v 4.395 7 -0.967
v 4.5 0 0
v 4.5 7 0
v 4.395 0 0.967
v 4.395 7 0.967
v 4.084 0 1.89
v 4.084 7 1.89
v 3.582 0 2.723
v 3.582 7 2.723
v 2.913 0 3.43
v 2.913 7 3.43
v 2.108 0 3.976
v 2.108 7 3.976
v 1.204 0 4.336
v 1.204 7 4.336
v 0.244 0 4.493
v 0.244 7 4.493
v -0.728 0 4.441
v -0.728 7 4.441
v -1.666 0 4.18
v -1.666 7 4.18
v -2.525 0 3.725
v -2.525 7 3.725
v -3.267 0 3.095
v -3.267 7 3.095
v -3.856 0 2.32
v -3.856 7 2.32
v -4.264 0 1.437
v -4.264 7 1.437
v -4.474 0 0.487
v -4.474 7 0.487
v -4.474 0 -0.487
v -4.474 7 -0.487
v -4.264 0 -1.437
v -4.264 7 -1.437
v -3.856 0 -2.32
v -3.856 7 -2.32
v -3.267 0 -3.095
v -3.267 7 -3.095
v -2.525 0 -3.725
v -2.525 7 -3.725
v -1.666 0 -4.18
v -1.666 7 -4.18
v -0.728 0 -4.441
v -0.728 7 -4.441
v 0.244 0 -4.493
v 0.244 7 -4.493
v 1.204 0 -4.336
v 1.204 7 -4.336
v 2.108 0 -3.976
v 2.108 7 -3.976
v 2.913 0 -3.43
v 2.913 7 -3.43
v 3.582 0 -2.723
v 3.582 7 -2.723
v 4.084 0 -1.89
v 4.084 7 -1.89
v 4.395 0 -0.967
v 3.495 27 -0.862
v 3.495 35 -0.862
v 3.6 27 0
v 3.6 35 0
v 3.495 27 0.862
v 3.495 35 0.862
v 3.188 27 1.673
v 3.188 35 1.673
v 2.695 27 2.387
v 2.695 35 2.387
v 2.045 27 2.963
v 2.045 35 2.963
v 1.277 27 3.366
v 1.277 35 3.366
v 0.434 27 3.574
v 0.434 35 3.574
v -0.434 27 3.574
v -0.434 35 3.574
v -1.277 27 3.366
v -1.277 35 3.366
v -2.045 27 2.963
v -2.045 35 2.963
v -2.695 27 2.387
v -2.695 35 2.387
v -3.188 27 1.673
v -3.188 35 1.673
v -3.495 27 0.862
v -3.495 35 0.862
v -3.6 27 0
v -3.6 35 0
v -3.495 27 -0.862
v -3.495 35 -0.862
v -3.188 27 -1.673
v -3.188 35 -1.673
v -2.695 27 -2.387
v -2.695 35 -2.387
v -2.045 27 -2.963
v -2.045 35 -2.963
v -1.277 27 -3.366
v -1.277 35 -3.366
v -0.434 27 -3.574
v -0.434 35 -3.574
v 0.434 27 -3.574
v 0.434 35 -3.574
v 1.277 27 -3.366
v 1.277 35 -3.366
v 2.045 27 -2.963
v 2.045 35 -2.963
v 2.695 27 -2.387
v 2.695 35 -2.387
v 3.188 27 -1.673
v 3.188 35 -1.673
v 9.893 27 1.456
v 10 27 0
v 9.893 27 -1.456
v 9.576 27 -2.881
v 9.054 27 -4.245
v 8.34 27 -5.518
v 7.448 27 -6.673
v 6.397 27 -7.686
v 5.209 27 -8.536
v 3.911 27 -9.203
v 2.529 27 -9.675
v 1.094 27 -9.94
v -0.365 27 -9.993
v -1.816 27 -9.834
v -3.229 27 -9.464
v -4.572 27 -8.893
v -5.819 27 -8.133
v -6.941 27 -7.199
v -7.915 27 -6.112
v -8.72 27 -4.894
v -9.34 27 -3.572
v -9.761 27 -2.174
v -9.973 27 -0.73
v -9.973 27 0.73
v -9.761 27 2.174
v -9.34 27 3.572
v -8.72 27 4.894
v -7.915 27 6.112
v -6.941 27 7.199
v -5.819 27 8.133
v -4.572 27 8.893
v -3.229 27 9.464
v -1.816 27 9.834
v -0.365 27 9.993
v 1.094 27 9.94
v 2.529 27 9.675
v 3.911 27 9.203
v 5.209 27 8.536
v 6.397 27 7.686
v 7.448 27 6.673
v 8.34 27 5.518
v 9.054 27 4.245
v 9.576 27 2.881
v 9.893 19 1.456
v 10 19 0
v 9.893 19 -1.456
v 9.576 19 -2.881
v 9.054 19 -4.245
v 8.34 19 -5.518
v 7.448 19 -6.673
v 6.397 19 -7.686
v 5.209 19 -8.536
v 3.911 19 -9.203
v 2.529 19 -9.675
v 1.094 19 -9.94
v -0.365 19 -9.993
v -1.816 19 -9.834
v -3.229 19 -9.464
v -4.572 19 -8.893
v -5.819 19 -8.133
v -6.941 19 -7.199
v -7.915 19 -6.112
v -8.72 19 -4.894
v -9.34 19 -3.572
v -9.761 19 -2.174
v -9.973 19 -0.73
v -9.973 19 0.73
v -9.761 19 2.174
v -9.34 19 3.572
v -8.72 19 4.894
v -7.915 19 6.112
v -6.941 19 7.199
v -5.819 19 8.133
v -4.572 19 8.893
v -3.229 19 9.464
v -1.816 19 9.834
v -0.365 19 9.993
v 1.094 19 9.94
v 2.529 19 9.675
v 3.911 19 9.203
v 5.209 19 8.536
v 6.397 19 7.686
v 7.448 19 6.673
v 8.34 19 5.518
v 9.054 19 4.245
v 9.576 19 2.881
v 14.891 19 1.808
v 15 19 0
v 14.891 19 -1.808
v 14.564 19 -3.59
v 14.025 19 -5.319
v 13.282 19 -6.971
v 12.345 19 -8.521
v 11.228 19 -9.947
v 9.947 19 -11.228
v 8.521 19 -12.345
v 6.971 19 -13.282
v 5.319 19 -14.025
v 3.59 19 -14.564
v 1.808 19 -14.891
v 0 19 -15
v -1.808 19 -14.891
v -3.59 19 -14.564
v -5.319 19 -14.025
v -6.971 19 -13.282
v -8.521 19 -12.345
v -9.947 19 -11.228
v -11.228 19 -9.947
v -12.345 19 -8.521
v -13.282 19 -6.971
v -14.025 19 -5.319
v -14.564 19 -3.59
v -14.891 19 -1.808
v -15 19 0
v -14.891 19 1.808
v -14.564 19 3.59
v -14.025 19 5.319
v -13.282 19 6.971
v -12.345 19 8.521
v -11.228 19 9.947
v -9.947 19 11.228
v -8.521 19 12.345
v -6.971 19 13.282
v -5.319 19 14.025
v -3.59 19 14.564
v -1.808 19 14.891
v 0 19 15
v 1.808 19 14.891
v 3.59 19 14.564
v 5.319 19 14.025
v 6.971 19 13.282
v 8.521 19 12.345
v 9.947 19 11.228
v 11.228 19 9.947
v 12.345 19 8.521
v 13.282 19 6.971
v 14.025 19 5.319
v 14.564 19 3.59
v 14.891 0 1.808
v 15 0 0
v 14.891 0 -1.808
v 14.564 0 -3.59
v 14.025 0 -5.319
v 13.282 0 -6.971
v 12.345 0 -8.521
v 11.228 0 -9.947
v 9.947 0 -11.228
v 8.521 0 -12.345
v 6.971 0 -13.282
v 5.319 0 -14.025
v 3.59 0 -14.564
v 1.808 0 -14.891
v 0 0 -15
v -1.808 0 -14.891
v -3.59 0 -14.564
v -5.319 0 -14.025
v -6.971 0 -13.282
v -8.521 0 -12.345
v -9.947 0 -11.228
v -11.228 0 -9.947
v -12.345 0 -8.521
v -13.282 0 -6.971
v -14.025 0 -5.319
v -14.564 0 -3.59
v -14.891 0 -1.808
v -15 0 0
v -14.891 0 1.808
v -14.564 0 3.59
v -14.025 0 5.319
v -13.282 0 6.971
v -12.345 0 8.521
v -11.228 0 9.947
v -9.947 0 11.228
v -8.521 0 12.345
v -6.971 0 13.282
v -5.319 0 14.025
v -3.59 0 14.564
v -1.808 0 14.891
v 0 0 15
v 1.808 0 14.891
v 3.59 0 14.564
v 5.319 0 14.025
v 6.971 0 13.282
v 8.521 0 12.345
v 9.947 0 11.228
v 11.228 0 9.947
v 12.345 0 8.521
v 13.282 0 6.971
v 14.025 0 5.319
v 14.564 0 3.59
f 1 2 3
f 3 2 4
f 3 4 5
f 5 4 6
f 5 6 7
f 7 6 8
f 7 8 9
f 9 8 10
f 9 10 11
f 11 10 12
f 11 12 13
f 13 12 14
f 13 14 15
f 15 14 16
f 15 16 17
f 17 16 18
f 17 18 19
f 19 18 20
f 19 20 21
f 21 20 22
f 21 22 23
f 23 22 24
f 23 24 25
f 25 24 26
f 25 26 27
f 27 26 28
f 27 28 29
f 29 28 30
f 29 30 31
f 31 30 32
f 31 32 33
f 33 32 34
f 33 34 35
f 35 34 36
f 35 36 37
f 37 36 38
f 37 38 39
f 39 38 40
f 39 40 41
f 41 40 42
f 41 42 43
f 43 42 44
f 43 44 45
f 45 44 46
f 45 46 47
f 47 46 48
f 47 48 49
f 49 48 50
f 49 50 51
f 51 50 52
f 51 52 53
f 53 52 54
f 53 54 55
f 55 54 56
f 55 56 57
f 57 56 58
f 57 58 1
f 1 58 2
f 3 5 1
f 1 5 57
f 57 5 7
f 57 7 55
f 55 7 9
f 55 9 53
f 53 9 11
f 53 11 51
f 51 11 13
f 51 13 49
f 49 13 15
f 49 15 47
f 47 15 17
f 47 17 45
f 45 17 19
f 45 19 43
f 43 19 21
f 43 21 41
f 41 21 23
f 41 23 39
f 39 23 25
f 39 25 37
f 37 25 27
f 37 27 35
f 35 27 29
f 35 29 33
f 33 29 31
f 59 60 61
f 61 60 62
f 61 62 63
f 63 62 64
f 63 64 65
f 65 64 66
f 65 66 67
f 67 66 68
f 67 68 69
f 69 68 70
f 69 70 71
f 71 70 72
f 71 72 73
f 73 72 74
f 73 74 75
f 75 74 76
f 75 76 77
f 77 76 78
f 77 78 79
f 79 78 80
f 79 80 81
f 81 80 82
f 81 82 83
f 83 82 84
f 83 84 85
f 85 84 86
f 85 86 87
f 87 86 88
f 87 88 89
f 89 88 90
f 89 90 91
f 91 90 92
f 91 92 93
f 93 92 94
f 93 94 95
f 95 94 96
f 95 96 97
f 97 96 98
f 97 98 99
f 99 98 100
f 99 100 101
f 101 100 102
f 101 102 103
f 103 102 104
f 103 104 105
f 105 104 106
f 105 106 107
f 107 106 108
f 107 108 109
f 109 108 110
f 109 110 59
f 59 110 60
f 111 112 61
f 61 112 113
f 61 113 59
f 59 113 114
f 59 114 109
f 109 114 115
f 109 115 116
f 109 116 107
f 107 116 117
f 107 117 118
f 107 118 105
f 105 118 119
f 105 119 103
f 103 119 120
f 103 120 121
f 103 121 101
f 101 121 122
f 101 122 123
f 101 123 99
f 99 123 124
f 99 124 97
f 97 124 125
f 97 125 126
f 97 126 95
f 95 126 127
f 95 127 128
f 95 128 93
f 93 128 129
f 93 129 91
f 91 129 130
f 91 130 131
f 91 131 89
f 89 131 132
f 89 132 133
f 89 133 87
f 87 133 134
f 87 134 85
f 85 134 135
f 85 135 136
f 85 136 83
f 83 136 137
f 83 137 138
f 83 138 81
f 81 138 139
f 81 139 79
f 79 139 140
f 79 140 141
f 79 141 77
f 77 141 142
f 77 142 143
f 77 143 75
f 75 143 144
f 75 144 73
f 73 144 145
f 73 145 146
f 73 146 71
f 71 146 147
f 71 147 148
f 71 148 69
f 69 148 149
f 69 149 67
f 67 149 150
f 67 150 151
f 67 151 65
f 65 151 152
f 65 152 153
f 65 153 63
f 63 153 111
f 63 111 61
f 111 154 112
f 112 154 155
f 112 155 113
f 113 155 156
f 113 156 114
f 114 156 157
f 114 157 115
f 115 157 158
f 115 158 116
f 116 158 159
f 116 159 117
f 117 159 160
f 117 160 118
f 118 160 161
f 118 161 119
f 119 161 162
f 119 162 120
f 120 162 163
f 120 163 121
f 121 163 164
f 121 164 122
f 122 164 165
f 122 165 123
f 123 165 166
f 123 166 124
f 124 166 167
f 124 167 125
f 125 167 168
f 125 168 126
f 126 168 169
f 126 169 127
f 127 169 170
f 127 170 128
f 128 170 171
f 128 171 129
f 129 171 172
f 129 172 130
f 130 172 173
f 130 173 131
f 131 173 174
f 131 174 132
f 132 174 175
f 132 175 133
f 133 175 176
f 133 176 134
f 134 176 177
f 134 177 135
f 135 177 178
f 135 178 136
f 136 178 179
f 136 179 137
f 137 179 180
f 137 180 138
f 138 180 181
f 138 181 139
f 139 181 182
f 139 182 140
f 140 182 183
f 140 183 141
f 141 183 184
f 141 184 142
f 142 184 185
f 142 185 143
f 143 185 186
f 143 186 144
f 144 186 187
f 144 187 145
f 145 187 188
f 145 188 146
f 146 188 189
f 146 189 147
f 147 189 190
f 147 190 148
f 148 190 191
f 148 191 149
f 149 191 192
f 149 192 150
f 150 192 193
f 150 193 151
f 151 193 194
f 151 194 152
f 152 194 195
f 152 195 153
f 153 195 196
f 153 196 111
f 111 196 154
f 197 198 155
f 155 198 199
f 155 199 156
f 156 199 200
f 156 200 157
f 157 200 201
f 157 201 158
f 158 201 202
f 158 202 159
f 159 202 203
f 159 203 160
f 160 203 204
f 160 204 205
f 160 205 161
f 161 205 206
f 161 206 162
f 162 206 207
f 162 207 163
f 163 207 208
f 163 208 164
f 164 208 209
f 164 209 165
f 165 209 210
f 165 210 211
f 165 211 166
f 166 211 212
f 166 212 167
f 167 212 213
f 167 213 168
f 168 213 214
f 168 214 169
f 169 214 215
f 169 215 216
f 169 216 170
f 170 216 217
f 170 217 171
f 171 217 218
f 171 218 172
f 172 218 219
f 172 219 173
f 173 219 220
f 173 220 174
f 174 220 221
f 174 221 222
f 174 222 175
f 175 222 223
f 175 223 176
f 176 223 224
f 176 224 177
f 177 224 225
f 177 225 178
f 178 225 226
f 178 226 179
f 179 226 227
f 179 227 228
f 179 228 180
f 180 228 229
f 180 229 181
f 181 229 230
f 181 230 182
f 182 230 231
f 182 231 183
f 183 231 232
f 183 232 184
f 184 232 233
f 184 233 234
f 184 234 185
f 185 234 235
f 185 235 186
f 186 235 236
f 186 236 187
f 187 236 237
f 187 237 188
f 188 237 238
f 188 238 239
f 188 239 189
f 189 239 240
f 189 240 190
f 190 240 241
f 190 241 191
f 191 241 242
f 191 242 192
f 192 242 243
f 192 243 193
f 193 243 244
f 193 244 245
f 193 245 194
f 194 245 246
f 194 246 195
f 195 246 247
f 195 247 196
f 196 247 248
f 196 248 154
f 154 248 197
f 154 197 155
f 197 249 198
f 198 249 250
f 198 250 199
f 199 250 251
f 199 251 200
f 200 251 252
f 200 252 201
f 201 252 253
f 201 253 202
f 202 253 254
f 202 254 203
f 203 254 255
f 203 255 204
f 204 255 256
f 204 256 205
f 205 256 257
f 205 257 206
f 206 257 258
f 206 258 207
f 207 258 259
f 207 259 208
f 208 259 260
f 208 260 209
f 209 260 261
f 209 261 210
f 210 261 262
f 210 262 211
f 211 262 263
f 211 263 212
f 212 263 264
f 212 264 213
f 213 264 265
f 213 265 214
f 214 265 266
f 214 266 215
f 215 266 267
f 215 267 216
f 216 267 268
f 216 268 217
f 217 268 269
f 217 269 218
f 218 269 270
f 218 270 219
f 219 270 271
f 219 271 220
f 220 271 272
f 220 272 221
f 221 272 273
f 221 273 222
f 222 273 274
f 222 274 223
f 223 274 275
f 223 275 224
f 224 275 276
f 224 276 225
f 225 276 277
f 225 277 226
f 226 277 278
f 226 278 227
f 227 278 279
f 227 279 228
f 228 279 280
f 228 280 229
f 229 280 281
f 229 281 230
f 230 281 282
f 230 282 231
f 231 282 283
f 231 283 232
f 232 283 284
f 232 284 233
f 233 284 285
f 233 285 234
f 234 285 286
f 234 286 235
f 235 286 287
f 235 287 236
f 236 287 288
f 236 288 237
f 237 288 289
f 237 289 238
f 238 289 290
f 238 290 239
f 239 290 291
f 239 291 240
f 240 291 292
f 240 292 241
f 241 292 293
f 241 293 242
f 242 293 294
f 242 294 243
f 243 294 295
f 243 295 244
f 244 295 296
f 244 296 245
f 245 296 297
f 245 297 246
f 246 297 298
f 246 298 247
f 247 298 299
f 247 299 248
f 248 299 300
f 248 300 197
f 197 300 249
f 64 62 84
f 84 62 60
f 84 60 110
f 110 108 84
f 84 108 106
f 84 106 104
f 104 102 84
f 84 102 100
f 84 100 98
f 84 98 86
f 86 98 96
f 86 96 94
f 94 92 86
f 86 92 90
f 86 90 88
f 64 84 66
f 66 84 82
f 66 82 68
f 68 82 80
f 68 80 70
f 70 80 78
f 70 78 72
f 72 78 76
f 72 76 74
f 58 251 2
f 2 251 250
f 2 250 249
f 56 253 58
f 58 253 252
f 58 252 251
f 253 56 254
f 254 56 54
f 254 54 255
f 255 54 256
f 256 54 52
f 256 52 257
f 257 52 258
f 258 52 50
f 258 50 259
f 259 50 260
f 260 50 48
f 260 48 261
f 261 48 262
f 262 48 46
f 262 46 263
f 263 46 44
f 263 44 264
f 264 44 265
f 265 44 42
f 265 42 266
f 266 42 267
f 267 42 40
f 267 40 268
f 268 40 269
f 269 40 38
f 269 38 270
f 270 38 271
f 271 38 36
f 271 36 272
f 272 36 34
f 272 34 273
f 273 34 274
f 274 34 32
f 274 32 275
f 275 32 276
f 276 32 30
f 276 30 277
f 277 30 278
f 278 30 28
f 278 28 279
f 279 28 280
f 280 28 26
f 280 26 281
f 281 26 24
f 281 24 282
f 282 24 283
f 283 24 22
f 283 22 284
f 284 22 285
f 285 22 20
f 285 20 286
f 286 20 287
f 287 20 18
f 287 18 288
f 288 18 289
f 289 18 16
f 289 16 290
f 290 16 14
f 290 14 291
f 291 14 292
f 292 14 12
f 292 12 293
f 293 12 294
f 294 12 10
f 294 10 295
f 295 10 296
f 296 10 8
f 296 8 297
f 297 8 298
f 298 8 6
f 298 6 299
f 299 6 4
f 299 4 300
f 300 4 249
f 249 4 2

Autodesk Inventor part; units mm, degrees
ref_plane "YZ Plane" through (0, 0, 0) normal (1, 0, 0) x (0, 1, 0)
ref_plane "XZ Plane" through (0, 0, 0) normal (0, 1, 0) x (-1, 0, 0)
ref_plane "XY Plane" through (0, 0, 0) normal (0, 0, 1) x (1, 0, 0)
sketch "Sketch2" plane through (0, 0, 0) normal (0, 1, 0) x (-1, 0, 0)
  circle A0 centre (0, 0) radius 15
  dimension "d0" = 30
extrude "Extrusion1" add sketch "Sketch2" along normal blind 35
sketch "Sketch3" plane through (0, 35, 0) normal (0, 1, 0) x (1, 0, 0)
  circle A0 centre (0, 0) radius 3.6
  circle A1 centre (0, 0) radius 15
  circle A2 centre (0, 0) radius 10
  dimension "d3" = 7.2
  dimension "d4" = 20
extrude "Extrusion2" cut sketch "Sketch3" against normal blind 16 contours A1
extrude "Extrusion3" cut sketch "Sketch3" against normal blind 8 contours A2
sketch "Sketch4" plane through (0, 0, 0) normal (0, -1, 0) x (1, 0, 0)
  circle A0 centre (0, 0) radius 4.5
  dimension "d9" = 9
extrude "Extrusion4" cut sketch "Sketch4" against normal blind 7
properties part number "replacement-cover-axel"
